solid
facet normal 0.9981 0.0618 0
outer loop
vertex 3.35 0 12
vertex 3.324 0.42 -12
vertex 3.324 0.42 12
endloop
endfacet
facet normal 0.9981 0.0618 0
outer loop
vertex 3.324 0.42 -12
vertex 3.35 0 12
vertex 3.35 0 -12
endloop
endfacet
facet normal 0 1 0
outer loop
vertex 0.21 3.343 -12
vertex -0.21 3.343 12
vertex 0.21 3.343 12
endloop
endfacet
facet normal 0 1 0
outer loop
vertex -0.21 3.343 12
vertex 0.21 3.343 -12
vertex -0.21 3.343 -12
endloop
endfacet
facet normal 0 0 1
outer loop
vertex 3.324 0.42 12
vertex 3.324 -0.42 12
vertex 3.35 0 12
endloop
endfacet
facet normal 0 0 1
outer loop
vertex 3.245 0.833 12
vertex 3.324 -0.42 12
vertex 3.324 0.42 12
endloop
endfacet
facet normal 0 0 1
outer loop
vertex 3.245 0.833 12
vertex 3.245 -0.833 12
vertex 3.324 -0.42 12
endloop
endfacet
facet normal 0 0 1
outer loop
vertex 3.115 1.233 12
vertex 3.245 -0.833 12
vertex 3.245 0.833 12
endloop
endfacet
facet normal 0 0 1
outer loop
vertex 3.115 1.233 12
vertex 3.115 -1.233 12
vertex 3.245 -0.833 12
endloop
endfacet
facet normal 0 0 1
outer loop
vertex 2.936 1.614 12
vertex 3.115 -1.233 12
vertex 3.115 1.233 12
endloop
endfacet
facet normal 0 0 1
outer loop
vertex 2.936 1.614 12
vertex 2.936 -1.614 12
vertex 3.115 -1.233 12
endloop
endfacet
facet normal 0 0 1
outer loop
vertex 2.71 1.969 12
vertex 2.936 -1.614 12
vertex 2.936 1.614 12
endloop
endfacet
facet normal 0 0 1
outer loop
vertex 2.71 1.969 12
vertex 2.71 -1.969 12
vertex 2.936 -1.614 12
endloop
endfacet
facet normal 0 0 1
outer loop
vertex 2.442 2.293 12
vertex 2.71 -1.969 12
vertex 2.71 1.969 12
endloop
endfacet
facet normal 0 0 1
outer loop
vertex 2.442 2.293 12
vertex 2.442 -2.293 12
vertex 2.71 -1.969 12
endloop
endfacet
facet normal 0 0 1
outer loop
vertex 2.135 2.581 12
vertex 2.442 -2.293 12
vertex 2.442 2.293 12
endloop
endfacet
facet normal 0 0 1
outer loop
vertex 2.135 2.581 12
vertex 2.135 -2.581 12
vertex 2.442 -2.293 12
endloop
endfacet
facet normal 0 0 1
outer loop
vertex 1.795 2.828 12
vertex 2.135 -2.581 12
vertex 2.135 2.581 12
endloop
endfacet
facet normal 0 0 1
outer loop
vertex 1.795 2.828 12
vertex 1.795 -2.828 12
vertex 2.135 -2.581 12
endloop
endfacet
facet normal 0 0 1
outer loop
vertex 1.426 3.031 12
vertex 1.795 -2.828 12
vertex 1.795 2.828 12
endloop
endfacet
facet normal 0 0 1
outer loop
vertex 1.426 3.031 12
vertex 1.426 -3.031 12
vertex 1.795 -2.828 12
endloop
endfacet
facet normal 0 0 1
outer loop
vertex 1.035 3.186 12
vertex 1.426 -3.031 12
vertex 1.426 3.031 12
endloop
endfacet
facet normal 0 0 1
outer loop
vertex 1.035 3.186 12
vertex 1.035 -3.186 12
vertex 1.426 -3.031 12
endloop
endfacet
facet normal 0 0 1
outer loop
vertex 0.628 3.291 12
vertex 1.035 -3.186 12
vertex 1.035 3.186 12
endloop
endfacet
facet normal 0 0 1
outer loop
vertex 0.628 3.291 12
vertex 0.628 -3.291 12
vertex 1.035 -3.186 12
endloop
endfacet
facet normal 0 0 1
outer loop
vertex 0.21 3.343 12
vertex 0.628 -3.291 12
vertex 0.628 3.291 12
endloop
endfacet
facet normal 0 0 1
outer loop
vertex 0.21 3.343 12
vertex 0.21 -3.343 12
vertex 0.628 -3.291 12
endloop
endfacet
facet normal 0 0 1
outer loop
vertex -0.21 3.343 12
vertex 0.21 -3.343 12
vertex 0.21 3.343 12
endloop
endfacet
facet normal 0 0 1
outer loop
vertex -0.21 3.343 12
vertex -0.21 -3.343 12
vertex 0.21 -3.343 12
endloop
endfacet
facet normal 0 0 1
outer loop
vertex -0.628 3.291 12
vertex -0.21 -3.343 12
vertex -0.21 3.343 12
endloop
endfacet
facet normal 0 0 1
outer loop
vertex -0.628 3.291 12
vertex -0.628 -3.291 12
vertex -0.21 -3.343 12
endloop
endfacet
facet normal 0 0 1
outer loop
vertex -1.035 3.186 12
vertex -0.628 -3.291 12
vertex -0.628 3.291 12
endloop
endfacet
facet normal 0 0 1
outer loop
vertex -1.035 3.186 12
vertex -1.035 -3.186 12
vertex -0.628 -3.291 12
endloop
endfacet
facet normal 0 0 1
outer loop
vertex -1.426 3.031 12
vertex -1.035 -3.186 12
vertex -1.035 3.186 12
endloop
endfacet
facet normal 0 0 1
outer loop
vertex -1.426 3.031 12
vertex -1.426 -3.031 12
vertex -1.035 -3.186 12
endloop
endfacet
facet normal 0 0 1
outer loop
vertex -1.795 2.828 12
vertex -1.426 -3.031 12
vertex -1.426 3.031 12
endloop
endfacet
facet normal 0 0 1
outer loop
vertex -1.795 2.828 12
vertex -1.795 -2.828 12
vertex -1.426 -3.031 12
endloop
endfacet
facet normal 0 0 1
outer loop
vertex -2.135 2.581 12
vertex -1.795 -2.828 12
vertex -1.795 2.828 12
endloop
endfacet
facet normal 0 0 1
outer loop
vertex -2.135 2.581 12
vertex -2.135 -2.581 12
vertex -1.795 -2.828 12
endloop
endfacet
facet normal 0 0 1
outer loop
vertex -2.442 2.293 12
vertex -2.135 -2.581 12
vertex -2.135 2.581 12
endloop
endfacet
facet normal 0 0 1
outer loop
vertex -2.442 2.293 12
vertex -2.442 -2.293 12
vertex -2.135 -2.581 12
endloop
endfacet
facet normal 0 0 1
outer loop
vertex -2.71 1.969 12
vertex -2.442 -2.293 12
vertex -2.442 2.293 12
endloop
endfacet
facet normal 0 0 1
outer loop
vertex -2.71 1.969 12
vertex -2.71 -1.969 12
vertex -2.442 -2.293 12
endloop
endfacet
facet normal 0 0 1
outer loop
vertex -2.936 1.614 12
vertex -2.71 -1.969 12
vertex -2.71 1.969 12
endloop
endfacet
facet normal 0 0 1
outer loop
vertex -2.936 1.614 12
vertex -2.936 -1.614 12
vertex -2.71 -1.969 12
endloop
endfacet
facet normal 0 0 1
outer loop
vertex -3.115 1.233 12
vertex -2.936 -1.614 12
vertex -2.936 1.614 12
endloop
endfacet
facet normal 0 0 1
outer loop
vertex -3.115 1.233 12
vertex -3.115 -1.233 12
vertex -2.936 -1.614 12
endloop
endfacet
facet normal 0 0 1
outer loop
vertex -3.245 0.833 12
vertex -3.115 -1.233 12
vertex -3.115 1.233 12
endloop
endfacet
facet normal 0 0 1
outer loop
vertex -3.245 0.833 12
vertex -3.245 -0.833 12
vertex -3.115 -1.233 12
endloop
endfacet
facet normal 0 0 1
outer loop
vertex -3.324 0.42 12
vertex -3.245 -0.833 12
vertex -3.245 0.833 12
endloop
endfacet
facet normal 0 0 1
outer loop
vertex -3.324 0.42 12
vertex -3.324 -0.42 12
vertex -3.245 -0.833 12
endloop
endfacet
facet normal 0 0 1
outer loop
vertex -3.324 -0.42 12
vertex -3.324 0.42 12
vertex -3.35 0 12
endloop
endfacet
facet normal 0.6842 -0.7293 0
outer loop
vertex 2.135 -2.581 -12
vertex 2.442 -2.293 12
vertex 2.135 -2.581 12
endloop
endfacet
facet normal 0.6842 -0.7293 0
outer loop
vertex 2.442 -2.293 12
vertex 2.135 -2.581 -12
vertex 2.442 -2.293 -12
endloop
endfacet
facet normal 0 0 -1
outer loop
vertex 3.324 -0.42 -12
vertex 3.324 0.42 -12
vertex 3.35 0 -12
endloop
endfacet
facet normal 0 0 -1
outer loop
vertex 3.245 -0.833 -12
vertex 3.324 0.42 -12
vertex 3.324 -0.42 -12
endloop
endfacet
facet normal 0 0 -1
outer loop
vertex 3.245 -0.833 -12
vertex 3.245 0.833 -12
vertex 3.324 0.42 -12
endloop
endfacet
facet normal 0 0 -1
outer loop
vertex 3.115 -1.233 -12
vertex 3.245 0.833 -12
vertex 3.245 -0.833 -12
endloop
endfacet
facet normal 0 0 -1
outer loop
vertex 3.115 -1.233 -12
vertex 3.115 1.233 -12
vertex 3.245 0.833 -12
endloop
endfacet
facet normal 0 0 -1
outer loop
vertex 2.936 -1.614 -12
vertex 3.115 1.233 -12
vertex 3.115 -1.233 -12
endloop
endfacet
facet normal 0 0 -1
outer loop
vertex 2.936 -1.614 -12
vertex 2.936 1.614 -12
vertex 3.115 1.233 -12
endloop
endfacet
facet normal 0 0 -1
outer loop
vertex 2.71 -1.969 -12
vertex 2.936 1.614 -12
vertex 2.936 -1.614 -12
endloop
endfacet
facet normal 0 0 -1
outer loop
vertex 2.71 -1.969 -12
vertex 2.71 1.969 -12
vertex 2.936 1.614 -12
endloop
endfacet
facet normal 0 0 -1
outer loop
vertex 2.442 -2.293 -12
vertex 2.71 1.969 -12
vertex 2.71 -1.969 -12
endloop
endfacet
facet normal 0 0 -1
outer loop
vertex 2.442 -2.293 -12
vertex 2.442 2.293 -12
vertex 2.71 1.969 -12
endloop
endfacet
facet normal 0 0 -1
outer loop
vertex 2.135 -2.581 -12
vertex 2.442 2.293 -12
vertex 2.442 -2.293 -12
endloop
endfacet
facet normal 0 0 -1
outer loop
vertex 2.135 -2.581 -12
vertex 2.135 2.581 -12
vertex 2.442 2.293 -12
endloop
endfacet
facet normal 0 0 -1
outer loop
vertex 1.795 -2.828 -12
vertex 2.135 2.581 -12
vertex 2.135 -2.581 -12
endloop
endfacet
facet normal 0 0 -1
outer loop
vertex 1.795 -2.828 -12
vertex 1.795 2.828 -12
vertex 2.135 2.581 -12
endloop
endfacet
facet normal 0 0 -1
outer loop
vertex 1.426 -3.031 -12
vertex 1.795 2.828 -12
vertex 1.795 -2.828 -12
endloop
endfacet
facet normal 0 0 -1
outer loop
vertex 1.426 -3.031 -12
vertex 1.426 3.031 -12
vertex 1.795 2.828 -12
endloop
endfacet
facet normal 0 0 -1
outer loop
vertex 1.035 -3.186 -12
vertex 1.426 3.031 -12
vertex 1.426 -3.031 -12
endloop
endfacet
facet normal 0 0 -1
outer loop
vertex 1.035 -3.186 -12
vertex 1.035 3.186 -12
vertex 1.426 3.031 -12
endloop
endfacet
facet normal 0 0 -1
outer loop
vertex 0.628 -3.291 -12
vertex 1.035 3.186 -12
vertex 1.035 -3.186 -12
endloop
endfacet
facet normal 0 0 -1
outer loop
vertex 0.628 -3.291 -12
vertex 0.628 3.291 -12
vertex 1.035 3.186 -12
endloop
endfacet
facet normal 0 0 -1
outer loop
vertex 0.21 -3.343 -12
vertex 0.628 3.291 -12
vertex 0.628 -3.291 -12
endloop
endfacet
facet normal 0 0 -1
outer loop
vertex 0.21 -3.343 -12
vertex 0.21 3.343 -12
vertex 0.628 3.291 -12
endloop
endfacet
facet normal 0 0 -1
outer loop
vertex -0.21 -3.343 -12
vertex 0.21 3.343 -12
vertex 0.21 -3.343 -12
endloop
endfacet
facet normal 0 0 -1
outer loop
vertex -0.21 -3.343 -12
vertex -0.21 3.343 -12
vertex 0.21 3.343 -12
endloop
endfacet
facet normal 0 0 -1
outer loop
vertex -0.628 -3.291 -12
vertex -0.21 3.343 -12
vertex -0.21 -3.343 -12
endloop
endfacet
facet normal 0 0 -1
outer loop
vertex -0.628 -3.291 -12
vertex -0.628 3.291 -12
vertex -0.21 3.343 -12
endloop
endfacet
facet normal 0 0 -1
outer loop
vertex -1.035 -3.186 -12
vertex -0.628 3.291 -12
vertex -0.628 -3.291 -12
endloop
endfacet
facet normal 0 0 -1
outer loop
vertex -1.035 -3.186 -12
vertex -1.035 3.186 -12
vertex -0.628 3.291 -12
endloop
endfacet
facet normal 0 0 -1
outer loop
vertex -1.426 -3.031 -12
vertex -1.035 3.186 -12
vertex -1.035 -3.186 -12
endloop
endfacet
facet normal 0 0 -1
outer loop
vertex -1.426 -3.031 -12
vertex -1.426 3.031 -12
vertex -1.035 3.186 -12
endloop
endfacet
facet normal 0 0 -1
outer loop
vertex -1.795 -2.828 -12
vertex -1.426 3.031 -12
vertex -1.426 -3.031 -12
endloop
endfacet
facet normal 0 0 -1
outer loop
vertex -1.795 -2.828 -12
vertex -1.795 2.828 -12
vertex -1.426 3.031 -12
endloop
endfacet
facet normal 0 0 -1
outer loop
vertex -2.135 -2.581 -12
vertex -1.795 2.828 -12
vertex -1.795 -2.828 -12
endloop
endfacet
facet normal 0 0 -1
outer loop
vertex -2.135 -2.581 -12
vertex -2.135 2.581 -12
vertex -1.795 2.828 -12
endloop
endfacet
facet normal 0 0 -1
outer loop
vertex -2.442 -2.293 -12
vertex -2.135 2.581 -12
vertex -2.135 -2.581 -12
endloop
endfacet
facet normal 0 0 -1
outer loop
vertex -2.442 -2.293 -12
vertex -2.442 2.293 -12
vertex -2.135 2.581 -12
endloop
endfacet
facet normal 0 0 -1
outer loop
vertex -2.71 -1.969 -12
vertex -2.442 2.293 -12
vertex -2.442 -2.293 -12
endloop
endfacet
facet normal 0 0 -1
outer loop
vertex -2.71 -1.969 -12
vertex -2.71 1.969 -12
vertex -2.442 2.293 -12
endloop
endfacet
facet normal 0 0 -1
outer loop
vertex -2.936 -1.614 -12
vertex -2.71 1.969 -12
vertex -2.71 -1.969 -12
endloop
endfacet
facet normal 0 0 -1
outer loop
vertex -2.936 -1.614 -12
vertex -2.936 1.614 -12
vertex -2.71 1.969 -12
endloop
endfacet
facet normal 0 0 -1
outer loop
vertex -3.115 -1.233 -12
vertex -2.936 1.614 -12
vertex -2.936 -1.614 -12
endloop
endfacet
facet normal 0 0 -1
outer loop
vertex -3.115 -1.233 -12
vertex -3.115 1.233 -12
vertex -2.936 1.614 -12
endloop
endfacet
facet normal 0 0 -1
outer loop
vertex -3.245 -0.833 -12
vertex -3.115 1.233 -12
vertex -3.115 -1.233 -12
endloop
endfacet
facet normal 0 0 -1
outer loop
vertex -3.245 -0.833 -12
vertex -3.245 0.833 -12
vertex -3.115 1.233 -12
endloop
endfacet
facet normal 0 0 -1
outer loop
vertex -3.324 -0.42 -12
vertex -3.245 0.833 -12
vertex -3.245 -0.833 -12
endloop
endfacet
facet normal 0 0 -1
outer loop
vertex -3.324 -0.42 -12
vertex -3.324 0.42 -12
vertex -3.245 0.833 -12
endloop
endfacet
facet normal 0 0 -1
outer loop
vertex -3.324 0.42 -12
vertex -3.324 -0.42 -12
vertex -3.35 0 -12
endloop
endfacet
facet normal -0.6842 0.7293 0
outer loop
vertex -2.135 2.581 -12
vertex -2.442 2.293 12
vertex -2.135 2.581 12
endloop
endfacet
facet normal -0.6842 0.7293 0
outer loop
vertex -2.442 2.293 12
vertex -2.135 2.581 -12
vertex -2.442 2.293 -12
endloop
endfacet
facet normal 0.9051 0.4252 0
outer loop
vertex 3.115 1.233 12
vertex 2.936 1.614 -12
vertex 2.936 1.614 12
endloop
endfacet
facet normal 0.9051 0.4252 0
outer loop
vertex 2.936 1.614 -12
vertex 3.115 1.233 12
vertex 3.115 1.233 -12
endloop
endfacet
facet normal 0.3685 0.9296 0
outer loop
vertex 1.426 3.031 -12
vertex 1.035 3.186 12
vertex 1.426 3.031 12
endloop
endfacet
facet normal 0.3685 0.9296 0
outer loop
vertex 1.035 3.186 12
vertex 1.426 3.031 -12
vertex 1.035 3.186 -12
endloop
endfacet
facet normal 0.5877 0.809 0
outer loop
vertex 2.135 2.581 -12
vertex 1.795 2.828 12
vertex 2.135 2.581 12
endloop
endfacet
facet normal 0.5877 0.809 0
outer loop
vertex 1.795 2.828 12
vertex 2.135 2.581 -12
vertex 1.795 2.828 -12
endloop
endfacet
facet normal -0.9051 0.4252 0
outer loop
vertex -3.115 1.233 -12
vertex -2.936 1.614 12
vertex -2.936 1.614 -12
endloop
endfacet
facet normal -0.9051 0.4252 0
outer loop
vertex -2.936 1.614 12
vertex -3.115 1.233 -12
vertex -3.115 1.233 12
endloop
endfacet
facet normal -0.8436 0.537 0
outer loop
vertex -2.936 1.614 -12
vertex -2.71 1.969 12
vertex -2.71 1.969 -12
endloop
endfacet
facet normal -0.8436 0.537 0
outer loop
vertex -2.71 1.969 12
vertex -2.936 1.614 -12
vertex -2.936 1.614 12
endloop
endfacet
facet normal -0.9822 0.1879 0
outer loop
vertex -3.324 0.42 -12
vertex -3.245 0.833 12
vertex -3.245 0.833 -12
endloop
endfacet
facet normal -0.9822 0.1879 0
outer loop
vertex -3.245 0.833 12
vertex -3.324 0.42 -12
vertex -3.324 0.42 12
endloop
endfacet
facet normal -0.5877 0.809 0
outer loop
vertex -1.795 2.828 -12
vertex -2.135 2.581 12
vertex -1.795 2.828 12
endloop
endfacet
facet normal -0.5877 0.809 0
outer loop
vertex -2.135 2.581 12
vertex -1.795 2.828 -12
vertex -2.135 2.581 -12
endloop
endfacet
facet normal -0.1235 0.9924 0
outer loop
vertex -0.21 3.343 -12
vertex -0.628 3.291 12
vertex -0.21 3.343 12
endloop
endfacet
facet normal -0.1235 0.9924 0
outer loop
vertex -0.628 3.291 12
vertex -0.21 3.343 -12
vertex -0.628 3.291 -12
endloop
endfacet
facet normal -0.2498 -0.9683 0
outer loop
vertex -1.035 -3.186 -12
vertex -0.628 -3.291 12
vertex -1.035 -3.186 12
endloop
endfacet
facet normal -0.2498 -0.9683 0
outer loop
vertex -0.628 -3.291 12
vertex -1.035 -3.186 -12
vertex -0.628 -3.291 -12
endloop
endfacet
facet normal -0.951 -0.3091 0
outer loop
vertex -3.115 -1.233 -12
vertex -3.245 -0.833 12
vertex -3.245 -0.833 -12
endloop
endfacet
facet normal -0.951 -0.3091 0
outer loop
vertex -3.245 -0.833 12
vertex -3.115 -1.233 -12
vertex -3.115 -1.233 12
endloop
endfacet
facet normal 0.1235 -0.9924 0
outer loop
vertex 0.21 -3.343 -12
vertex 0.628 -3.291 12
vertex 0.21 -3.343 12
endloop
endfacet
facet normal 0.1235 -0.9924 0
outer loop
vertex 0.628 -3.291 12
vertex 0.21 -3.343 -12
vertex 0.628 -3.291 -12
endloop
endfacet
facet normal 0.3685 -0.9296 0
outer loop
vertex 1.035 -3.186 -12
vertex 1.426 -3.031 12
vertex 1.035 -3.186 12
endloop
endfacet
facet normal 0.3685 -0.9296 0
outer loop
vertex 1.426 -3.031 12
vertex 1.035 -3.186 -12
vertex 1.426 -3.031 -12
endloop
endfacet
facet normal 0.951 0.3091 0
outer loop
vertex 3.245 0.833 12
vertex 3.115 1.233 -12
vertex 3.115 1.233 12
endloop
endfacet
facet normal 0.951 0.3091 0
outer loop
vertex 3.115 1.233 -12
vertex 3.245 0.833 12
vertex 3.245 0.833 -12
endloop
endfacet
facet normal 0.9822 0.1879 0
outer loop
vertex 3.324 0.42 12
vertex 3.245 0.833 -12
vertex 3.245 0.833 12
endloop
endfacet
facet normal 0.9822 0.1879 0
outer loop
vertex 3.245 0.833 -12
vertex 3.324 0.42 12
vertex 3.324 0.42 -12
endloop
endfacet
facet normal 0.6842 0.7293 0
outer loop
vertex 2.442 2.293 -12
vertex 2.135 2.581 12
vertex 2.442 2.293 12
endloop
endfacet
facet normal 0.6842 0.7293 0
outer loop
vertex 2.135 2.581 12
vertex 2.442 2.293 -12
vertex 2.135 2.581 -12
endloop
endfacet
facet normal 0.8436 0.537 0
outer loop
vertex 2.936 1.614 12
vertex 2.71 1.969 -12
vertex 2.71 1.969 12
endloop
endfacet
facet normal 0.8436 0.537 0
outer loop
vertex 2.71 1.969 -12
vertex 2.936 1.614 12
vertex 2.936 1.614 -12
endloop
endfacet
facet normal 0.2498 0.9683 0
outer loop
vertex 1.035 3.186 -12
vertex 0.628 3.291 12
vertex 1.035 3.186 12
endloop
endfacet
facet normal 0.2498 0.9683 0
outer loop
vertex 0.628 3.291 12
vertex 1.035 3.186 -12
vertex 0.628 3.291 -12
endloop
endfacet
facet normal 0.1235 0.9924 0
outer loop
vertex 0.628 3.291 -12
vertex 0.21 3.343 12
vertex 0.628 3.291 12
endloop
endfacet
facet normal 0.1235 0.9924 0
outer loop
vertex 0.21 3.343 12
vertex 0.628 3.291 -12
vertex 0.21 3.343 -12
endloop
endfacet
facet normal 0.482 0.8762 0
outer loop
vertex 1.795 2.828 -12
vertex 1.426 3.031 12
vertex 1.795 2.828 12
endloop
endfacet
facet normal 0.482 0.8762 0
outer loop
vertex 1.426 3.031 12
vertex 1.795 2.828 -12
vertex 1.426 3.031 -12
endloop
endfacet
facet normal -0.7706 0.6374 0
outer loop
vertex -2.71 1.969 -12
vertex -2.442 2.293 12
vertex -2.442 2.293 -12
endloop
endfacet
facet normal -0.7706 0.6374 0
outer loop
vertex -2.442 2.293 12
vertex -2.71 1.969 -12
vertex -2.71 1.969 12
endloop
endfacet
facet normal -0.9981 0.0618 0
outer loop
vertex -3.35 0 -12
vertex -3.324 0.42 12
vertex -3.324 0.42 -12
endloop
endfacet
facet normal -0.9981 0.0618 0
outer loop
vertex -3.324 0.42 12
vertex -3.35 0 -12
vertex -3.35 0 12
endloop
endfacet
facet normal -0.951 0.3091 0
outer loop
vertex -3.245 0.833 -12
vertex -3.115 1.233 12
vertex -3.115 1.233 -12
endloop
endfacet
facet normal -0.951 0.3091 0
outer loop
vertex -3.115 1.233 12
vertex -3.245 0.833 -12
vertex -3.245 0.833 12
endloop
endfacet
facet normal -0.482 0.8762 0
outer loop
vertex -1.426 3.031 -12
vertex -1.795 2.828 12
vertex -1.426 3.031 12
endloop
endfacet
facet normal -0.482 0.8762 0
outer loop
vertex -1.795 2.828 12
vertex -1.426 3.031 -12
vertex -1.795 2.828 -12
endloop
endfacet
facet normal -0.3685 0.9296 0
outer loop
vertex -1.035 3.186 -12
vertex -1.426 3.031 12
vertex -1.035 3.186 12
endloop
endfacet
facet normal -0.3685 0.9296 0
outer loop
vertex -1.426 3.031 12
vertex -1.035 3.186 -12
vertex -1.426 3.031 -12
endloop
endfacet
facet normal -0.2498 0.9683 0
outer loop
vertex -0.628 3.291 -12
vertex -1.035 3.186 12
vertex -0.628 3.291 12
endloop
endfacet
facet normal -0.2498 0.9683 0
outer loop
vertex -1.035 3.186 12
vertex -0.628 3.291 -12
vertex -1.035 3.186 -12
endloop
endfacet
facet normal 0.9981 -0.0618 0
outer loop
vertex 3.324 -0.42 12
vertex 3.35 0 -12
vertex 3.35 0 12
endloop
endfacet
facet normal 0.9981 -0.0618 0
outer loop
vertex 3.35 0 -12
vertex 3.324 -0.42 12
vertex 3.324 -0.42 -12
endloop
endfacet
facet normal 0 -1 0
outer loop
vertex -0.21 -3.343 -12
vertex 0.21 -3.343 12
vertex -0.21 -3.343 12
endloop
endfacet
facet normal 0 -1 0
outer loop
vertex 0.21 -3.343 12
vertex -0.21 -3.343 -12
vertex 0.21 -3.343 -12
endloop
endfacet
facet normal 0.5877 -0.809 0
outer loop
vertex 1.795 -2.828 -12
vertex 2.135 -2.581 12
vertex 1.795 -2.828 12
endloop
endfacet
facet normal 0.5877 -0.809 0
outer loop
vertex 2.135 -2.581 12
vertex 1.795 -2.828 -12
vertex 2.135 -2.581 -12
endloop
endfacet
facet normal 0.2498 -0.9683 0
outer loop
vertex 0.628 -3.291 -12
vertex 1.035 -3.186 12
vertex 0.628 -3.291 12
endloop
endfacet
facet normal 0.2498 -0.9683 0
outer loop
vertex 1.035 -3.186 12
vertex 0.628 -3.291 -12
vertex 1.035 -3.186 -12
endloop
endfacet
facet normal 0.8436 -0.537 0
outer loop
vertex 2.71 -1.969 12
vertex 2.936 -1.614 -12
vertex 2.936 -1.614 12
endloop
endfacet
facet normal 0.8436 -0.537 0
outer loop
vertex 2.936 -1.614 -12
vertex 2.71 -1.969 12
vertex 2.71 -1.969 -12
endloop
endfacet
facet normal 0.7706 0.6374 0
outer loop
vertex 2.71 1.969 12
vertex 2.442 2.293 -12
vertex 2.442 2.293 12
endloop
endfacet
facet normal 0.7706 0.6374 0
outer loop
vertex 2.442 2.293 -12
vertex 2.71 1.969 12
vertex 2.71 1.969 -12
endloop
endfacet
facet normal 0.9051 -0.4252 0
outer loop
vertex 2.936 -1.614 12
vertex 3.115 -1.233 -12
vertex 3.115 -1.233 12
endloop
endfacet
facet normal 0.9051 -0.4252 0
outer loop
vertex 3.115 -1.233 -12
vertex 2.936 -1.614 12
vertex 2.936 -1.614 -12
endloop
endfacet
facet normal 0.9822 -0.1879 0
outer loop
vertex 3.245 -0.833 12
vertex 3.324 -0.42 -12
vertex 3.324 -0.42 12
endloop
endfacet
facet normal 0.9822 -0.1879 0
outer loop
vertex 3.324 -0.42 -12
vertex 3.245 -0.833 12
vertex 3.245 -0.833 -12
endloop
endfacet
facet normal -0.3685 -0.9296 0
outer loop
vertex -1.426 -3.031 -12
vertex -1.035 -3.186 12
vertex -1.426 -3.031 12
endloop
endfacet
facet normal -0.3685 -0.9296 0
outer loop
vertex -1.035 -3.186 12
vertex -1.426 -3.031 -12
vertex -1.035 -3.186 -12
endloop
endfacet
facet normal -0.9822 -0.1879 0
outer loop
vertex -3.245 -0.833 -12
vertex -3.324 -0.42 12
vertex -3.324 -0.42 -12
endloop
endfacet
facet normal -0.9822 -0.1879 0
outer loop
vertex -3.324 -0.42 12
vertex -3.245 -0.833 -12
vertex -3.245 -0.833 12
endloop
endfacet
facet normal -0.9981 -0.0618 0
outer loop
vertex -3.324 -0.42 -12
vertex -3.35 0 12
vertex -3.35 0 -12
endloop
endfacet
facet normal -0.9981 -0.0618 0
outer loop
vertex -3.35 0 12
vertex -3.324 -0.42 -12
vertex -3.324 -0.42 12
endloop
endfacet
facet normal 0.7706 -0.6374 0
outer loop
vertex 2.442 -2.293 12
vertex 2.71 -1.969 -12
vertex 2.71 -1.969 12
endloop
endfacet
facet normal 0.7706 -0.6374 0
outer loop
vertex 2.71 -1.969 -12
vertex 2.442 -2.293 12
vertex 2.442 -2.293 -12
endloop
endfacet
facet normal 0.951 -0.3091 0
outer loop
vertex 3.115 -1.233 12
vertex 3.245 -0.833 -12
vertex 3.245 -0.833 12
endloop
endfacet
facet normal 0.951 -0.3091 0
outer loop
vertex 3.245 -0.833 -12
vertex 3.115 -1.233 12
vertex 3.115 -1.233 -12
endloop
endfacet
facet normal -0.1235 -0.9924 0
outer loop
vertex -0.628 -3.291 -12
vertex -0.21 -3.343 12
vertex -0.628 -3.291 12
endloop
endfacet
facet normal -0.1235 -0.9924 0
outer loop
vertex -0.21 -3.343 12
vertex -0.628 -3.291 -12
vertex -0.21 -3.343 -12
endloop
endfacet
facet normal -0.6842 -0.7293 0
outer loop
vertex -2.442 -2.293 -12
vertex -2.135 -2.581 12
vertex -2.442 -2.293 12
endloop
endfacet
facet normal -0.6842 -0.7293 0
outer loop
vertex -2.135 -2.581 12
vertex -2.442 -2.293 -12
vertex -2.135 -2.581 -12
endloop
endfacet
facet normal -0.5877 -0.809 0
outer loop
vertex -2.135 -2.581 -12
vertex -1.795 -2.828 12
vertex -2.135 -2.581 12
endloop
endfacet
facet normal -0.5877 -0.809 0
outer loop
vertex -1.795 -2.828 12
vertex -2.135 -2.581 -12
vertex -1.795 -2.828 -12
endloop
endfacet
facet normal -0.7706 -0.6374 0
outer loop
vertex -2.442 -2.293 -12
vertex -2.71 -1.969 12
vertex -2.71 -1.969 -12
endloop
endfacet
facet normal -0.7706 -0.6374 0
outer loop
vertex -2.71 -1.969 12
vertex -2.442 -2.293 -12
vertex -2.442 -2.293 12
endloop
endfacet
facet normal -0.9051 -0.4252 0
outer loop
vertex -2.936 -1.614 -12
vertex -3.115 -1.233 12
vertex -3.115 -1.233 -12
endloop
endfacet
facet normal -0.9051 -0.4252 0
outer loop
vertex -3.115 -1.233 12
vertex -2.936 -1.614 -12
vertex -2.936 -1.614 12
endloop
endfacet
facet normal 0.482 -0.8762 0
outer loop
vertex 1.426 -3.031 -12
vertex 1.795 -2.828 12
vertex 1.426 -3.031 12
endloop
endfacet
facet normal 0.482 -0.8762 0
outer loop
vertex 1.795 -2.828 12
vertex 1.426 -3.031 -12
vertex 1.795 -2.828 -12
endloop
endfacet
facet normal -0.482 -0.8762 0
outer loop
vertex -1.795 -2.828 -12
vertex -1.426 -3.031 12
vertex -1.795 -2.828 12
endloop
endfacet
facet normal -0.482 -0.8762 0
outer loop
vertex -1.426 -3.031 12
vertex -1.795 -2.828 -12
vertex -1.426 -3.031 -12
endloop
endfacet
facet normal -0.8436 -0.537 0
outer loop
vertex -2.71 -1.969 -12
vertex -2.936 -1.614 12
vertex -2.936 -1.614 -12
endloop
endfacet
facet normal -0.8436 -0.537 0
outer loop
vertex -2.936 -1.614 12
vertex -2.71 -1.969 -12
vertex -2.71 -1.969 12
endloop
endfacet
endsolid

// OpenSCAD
$fn = 50;


difference() {
	union() {
		translate(v = [0, 0, -12.0000000000]) {
			cylinder(h = 24, r = 3.3500000000);
		}
	}
	union() {
		translate(v = [0, 0, -100.0000000000]) {
			cylinder(h = 200, r = 0);
		}
	}
}
